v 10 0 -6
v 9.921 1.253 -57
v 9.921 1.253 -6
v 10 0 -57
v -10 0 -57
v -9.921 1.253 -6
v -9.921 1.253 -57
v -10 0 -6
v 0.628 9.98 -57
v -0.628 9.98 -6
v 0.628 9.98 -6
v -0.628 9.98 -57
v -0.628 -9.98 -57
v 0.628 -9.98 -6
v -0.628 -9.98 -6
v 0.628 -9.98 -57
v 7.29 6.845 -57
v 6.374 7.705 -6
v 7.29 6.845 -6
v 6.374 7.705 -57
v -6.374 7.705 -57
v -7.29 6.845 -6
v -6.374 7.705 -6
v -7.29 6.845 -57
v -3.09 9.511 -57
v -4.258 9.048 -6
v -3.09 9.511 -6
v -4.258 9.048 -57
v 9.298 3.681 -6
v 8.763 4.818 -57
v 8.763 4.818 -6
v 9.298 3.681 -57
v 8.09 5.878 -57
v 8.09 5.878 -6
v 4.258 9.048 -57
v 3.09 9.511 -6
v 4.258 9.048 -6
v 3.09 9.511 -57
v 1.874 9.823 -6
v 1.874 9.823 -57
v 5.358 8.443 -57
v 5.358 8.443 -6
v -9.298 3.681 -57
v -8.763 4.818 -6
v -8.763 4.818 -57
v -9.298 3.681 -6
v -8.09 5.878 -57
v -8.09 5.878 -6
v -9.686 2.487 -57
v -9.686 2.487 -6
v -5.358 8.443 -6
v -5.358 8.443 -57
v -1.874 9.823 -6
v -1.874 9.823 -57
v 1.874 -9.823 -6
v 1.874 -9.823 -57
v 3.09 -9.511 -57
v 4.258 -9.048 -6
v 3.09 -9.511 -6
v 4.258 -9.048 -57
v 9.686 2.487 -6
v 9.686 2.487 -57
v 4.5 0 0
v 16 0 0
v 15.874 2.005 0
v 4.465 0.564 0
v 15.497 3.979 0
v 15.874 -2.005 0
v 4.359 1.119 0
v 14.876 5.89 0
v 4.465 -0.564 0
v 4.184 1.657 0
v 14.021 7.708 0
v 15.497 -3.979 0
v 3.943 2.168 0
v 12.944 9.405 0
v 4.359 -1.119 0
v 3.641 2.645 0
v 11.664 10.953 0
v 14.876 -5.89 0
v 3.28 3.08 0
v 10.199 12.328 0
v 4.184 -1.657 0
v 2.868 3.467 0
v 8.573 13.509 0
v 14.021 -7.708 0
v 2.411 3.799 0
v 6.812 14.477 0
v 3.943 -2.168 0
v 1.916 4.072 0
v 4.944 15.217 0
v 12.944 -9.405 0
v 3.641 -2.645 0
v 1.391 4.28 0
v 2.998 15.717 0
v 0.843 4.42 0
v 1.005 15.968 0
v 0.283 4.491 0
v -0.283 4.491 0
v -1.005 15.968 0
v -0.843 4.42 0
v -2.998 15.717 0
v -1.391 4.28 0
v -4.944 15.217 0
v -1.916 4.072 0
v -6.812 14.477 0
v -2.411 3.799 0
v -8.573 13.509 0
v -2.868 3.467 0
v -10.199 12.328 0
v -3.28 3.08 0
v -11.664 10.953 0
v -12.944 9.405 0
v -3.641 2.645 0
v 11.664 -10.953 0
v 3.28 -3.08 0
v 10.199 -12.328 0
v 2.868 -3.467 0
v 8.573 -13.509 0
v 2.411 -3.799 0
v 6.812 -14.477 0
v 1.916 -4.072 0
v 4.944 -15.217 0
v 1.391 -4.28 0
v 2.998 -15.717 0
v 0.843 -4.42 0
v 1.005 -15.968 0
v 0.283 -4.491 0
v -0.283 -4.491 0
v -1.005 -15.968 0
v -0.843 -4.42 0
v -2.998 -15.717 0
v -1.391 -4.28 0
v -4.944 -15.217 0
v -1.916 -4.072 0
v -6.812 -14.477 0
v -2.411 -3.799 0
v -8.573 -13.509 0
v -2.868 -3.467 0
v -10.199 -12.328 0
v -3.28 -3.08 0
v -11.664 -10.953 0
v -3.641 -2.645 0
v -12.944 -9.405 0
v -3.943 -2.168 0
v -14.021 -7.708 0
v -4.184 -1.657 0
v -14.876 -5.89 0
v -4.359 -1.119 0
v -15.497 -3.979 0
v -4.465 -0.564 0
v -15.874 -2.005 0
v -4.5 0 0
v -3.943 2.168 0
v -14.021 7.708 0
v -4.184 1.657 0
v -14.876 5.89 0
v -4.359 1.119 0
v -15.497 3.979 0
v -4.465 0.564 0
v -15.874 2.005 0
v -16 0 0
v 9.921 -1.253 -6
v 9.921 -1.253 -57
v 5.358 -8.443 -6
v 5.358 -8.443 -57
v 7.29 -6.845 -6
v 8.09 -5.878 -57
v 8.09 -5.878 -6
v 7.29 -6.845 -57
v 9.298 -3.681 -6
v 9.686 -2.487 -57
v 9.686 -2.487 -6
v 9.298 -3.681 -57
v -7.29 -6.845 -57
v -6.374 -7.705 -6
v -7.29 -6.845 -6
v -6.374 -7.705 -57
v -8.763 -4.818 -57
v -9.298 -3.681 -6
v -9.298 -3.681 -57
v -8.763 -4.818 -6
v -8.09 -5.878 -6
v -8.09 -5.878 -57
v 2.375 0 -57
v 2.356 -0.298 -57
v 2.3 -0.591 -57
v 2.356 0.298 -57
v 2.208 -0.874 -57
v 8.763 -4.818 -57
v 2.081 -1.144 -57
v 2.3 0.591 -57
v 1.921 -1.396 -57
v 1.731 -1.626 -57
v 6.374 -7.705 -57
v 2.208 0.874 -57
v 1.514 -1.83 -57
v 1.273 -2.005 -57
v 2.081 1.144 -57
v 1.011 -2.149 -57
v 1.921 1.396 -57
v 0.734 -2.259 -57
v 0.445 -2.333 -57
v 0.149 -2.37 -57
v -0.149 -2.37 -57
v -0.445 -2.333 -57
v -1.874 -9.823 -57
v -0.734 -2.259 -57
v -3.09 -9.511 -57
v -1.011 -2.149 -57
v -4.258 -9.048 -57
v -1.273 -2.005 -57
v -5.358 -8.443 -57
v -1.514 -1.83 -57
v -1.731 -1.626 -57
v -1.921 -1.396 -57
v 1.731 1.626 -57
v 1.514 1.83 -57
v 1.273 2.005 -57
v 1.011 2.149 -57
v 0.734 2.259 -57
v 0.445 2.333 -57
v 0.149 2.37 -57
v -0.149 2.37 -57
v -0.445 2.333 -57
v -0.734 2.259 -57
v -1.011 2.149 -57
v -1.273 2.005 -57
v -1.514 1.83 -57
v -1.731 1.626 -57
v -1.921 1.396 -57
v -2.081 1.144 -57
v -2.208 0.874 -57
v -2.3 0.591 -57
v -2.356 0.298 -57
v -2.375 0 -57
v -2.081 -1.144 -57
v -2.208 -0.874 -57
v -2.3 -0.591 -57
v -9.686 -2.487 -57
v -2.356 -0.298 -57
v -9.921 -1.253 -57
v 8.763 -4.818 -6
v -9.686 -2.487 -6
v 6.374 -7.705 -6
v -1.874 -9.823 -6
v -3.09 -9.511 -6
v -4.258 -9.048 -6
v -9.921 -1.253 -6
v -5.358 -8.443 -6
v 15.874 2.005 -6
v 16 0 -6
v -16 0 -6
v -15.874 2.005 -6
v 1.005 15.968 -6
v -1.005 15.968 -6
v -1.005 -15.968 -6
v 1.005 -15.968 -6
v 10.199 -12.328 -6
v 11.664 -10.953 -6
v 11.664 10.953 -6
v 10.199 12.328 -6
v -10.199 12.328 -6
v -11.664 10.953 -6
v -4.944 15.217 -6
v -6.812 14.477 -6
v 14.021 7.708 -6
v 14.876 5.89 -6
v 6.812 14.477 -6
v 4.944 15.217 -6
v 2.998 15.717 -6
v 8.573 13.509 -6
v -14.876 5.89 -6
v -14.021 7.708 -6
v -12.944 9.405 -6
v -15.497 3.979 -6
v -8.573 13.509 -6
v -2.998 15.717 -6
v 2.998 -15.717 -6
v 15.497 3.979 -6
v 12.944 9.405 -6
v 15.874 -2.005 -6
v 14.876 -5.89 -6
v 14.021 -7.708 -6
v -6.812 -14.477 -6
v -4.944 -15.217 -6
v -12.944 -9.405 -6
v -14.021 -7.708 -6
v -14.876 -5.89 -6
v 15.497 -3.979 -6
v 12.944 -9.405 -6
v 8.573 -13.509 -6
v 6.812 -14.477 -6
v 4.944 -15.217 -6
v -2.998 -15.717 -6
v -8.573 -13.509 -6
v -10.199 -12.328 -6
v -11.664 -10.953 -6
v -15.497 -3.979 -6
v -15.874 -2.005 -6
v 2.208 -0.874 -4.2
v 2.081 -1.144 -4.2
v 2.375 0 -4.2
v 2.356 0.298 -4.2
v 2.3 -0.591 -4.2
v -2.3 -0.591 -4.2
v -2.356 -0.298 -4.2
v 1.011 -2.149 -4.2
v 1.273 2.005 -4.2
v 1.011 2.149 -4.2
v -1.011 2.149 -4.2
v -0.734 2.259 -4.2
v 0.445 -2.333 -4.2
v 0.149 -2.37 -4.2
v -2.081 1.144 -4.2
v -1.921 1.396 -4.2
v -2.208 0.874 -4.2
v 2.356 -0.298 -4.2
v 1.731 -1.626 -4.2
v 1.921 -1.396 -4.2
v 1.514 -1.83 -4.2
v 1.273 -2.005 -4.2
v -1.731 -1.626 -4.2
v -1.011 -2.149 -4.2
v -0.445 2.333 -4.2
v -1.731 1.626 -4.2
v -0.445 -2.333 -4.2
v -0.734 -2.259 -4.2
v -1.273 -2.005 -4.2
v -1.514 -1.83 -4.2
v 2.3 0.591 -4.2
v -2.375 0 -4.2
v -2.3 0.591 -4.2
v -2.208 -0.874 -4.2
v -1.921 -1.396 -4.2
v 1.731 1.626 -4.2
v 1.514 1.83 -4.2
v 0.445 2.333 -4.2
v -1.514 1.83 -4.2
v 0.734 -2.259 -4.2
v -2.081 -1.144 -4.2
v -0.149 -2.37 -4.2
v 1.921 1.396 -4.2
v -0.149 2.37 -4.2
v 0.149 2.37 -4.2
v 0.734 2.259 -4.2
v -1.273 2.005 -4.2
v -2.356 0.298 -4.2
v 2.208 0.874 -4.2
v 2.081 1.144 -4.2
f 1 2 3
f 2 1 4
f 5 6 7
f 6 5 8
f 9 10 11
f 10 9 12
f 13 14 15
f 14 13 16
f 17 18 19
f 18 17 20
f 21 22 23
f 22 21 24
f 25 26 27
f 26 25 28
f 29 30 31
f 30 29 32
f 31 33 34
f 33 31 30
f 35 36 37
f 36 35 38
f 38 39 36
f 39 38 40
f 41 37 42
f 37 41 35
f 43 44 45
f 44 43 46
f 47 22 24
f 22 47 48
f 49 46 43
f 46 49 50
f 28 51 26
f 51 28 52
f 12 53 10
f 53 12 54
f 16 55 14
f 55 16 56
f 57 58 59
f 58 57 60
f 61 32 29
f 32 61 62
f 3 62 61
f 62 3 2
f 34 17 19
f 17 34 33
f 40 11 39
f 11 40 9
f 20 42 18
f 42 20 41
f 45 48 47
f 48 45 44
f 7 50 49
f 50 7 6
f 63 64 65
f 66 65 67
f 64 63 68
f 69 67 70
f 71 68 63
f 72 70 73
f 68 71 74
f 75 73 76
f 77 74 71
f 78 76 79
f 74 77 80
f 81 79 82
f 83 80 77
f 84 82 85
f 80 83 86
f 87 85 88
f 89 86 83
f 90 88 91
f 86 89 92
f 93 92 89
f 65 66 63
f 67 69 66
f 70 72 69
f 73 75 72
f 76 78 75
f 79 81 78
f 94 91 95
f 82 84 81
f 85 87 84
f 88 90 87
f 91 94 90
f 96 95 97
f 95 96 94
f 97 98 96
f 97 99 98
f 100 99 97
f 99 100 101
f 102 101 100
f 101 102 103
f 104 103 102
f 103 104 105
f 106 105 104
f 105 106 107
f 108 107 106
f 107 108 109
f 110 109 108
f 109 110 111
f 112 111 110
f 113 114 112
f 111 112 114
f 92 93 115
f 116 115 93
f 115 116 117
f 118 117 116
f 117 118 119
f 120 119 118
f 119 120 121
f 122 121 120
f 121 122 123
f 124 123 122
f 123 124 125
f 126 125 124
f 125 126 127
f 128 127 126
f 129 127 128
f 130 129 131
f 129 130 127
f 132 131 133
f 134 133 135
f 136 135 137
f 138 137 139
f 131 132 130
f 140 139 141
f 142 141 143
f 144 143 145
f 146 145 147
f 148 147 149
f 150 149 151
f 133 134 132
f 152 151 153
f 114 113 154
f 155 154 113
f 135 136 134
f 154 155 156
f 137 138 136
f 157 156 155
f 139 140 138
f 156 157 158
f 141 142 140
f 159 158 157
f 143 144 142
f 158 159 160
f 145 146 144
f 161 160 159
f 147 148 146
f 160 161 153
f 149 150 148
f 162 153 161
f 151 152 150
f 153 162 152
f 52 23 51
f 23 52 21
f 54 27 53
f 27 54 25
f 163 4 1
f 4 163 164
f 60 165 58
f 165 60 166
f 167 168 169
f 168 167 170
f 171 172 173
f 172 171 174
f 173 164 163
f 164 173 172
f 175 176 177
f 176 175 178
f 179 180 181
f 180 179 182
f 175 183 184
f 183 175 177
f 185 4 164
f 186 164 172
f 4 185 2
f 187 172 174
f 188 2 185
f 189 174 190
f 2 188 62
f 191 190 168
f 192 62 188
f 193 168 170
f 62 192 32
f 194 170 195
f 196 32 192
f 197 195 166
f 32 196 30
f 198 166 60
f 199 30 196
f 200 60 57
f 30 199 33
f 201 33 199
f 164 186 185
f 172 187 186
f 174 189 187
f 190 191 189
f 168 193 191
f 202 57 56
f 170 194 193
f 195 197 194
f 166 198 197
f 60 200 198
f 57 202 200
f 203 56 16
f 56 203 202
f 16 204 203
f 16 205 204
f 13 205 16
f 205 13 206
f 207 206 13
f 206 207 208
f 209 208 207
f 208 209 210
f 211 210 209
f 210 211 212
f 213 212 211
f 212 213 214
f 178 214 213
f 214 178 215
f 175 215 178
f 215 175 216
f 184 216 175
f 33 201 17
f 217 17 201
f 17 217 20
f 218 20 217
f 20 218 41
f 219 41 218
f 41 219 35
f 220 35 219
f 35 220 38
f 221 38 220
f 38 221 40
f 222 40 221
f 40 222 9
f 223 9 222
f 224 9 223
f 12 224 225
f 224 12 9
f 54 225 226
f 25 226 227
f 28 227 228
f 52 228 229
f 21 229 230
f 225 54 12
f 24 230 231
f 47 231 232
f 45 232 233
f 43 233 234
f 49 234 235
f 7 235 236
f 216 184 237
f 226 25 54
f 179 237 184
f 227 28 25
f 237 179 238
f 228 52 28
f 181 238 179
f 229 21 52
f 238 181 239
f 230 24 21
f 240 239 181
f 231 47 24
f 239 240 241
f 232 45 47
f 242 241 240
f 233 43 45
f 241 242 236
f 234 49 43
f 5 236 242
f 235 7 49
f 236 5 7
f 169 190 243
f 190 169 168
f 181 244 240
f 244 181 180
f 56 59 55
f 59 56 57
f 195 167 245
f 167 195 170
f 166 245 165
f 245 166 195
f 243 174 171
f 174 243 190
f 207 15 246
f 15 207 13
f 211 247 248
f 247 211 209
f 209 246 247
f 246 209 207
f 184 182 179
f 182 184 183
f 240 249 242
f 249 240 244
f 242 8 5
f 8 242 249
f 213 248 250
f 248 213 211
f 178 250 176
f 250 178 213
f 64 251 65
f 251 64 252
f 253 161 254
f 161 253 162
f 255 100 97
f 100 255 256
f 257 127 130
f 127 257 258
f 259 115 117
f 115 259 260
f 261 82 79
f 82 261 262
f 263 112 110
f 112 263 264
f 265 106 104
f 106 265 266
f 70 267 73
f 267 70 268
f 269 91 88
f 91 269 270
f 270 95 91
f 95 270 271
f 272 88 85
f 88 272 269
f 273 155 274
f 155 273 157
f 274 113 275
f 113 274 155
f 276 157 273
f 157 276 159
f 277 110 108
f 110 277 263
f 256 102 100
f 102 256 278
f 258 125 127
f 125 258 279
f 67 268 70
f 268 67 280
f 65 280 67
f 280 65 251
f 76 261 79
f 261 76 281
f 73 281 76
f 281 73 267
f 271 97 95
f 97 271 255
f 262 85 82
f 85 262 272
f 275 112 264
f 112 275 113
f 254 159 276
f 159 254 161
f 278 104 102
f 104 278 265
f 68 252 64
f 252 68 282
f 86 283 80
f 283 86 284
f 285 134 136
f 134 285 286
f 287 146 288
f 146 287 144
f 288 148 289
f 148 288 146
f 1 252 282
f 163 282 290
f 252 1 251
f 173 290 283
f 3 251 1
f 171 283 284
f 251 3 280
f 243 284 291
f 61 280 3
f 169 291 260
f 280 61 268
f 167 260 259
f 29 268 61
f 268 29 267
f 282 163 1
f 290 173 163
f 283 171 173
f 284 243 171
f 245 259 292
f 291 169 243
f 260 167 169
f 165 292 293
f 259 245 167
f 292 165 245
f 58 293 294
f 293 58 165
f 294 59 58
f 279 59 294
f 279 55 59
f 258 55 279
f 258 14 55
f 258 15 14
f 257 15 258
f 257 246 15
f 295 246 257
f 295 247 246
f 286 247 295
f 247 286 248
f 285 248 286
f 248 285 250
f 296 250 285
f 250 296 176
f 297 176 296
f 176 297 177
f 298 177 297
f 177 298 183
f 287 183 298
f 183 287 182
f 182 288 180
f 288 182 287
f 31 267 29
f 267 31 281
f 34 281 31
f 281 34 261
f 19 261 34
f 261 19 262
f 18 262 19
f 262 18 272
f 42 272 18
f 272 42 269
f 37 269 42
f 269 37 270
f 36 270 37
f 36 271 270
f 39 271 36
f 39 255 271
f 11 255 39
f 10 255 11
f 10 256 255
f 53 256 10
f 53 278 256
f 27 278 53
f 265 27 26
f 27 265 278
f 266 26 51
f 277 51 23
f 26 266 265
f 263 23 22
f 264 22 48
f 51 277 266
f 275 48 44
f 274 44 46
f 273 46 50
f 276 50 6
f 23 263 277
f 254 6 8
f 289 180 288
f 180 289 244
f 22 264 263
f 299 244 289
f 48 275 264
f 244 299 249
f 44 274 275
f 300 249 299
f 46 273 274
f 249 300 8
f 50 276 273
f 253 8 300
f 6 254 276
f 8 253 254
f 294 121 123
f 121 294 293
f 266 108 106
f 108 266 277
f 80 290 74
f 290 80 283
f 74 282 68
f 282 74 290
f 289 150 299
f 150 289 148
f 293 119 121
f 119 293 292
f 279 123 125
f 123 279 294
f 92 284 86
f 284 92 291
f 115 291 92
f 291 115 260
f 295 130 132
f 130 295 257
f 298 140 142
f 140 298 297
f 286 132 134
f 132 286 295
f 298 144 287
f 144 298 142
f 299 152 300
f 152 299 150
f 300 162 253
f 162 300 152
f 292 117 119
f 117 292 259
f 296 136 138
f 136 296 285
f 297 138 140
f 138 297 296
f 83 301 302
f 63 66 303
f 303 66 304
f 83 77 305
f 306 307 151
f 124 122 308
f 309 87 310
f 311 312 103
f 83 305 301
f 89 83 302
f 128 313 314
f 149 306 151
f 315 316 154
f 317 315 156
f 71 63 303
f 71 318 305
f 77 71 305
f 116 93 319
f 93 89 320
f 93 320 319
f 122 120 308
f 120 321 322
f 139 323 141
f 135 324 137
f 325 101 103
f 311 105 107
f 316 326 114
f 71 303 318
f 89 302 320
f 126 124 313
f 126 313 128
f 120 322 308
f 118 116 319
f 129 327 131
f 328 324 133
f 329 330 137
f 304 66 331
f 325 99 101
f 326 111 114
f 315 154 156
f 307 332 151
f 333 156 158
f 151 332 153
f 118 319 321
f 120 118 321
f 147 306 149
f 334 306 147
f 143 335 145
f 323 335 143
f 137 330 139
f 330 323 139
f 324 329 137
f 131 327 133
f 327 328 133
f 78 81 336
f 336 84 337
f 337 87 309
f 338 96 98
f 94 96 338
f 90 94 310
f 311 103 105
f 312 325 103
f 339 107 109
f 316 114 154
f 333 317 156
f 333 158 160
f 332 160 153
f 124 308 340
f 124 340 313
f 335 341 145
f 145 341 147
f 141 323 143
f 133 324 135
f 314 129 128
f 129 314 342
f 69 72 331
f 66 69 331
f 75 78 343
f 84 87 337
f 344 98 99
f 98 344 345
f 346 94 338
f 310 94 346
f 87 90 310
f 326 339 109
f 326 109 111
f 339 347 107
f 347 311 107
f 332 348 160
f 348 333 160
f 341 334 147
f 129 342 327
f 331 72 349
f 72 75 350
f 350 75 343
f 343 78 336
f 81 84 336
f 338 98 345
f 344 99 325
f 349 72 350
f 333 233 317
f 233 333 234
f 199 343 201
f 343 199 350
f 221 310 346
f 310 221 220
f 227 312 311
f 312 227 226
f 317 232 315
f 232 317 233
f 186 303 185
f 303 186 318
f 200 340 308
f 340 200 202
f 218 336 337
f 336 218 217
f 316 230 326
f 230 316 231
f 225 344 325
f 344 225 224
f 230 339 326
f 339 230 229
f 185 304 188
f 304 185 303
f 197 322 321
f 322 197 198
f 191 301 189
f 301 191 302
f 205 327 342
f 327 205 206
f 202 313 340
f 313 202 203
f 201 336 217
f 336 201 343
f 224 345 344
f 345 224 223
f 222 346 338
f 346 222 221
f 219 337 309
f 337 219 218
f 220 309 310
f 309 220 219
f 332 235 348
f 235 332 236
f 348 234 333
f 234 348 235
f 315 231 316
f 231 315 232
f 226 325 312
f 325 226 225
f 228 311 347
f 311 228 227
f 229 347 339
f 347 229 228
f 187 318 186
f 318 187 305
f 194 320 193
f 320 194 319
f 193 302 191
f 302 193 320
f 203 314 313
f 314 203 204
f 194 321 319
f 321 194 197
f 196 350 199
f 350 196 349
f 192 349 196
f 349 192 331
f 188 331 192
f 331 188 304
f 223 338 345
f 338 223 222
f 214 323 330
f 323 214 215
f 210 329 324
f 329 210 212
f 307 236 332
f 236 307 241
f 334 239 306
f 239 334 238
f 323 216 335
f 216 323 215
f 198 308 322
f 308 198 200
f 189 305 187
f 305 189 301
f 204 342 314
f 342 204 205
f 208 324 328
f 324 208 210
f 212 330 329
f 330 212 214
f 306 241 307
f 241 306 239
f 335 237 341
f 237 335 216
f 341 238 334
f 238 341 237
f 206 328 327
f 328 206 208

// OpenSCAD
$fn = 50;


difference() {
	union() {
		translate(v = [0, 0, -57.0000000000]) {
			cylinder(h = 57, r = 10.0000000000);
		}
		translate(v = [0, 0, -6.0000000000]) {
			cylinder(h = 6, r = 16.0000000000);
		}
	}
	union() {
		translate(v = [0, 0, 0]) {
			rotate(a = [0, 0, 0]) {
				difference() {
					union() {
						#translate(v = [0, 0, -57.0000000000]) {
							cylinder(h = 57, r = 2.2500000000);
						}
						#translate(v = [0, 0, -4.2000000000]) {
							cylinder(h = 4.2000000000, r = 10.0000000000, r1 = 2.3750000000, r2 = 4.5000000000);
						}
						#translate(v = [0, 0, -57.0000000000]) {
							cylinder(h = 57, r = 2.3750000000);
						}
						#translate(v = [0, 0, -57.0000000000]) {
							cylinder(h = 57, r = 2.2500000000);
						}
					}
					union();
				}
			}
		}
	}
}
